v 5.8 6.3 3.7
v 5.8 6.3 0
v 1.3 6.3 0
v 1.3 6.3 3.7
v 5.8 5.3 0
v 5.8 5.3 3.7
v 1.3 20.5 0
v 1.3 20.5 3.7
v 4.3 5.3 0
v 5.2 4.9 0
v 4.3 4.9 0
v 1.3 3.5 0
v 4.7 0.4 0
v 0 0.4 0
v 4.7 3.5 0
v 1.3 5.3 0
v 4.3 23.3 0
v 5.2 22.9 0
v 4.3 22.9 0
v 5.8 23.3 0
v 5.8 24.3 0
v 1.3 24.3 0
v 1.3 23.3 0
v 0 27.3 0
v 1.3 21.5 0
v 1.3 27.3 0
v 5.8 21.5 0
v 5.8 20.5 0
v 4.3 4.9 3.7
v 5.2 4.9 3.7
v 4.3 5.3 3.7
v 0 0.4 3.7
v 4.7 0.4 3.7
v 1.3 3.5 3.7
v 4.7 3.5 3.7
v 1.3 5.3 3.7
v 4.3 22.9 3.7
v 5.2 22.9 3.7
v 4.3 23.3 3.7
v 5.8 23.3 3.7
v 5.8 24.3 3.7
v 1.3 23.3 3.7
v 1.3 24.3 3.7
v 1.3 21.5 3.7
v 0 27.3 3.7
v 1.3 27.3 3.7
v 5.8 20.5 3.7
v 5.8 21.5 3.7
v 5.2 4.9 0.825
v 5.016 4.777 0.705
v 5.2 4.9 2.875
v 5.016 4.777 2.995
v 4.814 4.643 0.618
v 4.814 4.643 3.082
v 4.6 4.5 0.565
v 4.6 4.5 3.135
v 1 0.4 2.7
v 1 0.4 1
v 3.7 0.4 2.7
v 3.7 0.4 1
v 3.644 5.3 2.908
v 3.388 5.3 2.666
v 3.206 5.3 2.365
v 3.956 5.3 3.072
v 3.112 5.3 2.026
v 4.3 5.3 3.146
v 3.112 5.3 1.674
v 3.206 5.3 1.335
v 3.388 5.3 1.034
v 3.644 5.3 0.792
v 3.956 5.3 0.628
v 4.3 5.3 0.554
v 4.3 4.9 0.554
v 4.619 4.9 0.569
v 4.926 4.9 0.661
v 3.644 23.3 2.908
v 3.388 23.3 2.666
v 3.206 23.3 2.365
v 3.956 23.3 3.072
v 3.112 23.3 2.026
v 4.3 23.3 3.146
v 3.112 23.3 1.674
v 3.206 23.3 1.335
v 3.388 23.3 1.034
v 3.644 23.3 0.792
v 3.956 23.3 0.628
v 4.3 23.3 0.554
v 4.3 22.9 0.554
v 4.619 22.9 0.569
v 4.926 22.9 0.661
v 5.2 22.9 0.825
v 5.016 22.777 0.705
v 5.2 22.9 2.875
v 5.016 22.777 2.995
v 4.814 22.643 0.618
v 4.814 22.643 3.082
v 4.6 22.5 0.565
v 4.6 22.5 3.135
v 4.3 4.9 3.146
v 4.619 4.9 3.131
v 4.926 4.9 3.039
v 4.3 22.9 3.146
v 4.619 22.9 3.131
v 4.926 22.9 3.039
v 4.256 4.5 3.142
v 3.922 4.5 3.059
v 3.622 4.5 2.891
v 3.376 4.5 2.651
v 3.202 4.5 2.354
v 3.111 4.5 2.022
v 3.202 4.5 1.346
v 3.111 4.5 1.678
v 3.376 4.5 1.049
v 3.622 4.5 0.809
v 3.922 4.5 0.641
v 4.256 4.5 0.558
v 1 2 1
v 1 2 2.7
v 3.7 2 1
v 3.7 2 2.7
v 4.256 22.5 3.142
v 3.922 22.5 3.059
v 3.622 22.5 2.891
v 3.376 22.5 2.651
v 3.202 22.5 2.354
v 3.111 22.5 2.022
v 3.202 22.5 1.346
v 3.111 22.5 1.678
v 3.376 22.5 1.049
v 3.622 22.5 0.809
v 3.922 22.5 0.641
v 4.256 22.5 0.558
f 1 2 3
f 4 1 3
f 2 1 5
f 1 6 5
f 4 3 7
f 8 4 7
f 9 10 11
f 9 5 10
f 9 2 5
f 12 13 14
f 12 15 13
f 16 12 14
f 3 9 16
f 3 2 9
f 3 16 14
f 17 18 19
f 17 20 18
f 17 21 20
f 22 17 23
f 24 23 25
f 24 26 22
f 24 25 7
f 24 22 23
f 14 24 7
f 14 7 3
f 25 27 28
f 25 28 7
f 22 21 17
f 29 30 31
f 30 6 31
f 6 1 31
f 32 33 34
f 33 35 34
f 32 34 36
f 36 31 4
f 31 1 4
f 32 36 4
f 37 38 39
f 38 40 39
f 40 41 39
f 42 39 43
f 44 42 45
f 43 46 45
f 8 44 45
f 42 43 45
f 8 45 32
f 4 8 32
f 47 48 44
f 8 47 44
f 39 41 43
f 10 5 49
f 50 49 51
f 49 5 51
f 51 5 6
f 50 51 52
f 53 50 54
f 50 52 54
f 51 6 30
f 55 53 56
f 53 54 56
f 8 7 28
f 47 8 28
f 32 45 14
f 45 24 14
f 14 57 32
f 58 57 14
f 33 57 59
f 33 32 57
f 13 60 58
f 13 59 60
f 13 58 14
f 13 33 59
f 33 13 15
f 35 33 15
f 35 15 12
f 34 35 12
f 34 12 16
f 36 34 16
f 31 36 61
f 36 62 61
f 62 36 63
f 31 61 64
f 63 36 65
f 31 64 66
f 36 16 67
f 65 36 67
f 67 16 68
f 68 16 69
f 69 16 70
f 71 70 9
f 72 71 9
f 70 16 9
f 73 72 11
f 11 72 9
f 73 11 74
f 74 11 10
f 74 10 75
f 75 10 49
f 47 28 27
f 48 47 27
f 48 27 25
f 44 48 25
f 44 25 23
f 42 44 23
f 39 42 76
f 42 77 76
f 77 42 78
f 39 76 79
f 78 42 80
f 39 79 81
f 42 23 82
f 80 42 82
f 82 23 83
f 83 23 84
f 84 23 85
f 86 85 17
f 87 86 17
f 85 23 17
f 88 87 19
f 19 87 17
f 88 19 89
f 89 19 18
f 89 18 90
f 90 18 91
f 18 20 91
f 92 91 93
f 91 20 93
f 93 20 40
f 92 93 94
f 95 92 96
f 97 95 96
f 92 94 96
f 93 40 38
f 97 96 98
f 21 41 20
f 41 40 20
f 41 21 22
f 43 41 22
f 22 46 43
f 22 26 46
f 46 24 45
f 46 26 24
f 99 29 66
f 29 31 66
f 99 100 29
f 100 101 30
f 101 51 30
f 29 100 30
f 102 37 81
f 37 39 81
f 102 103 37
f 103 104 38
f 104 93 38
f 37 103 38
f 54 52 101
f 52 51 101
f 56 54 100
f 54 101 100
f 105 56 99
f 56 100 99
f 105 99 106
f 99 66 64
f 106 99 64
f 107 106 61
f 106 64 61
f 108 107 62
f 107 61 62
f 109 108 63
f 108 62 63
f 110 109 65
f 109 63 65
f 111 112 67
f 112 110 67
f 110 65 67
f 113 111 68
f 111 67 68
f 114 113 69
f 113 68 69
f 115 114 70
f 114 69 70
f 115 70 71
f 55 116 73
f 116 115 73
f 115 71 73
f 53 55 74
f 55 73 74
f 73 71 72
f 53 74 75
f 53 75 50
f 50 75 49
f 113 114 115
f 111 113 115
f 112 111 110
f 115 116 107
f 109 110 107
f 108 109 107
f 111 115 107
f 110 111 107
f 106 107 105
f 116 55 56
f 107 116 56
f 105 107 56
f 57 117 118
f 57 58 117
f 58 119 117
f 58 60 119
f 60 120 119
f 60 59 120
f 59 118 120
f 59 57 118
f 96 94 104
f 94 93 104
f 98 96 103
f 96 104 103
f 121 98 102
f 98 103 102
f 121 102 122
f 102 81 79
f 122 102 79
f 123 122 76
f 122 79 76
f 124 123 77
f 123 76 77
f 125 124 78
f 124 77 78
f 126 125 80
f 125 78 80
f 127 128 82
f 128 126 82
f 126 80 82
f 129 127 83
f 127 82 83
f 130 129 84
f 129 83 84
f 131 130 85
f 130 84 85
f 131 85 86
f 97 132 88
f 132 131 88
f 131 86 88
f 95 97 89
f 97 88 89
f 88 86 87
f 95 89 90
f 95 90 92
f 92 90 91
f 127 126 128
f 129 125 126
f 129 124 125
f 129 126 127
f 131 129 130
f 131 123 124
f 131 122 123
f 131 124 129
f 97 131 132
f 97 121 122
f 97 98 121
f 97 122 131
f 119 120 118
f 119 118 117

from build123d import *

# Parameters (mm, degrees)
PAD_DEPTH       = 3.7
SKETCH001_W     = 2.7
SKETCH001_H     = 1.7
POCKET_DEPTH    = 2
SKETCH002_R     = 1.3
PAD001_DEPTH    = 1
SKETCH003_W     = 1.5
SKETCH003_H     = 3.7
PAD002_DEPTH    = 0.4
POCKET001_DEPTH = 5
SKETCH005_R     = 1.3
PAD003_DEPTH    = 1
SKETCH006_W     = 1.5
SKETCH006_H     = 3.7
PAD004_DEPTH    = 0.4
POCKET002_DEPTH = 5
SKETCH008_W     = 4.7
SKETCH008_H     = 3.7
POCKET003_DEPTH = 0.4
SKETCH009_W     = 1.3
SKETCH009_H     = 3.7
POCKET004_DEPTH = 0.7
SKETCH010_W     = 2.5
SKETCH010_H     = 3.592296
POCKET005_DEPTH = 0.2
SKETCH011_W     = 2
SKETCH011_H     = 3.592296
POCKET006_DEPTH = 0.2


with BuildPart() as part:
    # Sketch → Pad (new body)
    with BuildSketch(Plane.XY):
        Polygon((0, 28), (0, 0), (4.7, 0), (4.7, 3.5), (1.3, 3.5), (1.3, 5.3), (5.8, 5.3), (5.8, 6.3), (1.3, 6.3), (1.3, 20.5), (5.8, 20.5), (5.8, 21.5), (1.3, 21.5), (1.3, 23.3), (5.8, 23.3), (5.8, 24.3), (1.3, 24.3), (1.3, 28), align=None)
    extrude(amount=PAD_DEPTH)

    # Sketch001 → Pocket (cut)
    with BuildSketch(Plane.XZ):
        with Locations((2.35, 1.85)):
            Rectangle(SKETCH001_W, SKETCH001_H)
    extrude(amount=-POCKET_DEPTH, mode=Mode.SUBTRACT)

    # Sketch002 → Pad001 (new body)
    with BuildSketch(Plane.XZ.offset(-5.3)):
        with Locations((4.4, 1.85)):
            Circle(SKETCH002_R)
    extrude(amount=PAD001_DEPTH)

    # Sketch003 → Pad002 (new body)
    with BuildSketch(Plane.XZ.offset(-5.3)):
        with Locations((5.05, 1.85)):
            Rectangle(SKETCH003_W, SKETCH003_H)
    extrude(amount=PAD002_DEPTH)

    # Sketch004 → Pocket001 (cut)
    with BuildSketch(Plane.XY.offset(3.7)):
        Polygon((5.8, 5.3), (4.3, 4.3), (5.8, 4.3), align=None)
    extrude(amount=-POCKET001_DEPTH, mode=Mode.SUBTRACT)

    # Sketch005 → Pad003 (new body)
    with BuildSketch(Plane.XZ.offset(-23.3)):
        with Locations((4.4, 1.85)):
            Circle(SKETCH005_R)
    extrude(amount=PAD003_DEPTH)

    # Sketch006 → Pad004 (new body)
    with BuildSketch(Plane.XZ.offset(-23.3)):
        with Locations((5.05, 1.85)):
            Rectangle(SKETCH006_W, SKETCH006_H)
    extrude(amount=PAD004_DEPTH)

    # Sketch007 → Pocket002 (cut)
    with BuildSketch(Plane.XY.offset(3.7)):
        Polygon((5.8, 23.3), (4.3, 22.3), (5.8, 22.3), align=None)
    extrude(amount=-POCKET002_DEPTH, mode=Mode.SUBTRACT)

    # Sketch008 → Pocket003 (cut)
    with BuildSketch(Plane.XZ):
        with Locations((2.35, 1.85)):
            Rectangle(SKETCH008_W, SKETCH008_H)
    extrude(amount=-POCKET003_DEPTH, mode=Mode.SUBTRACT)

    # Sketch009 → Pocket004 (cut)
    with BuildSketch(Plane(origin=(0, 28, 0), x_dir=(-1, 0, 0), z_dir=(0, 1, 0))):
        with Locations((-0.65, 1.85)):
            Rectangle(SKETCH009_W, SKETCH009_H)
    extrude(amount=-POCKET004_DEPTH, mode=Mode.SUBTRACT)

    # Sketch010 → Pocket005 (cut)
    with BuildSketch(Plane.XZ.offset(-4.3)):
        with Locations((4.05, 1.85)):
            Rectangle(SKETCH010_W, SKETCH010_H)
    extrude(amount=-POCKET005_DEPTH, mode=Mode.SUBTRACT)

    # Sketch011 → Pocket006 (cut)
    with BuildSketch(Plane.XZ.offset(-22.3)):
        with Locations((3.8, 1.85)):
            Rectangle(SKETCH011_W, SKETCH011_H)
    extrude(amount=-POCKET006_DEPTH, mode=Mode.SUBTRACT)


solid = part.part
